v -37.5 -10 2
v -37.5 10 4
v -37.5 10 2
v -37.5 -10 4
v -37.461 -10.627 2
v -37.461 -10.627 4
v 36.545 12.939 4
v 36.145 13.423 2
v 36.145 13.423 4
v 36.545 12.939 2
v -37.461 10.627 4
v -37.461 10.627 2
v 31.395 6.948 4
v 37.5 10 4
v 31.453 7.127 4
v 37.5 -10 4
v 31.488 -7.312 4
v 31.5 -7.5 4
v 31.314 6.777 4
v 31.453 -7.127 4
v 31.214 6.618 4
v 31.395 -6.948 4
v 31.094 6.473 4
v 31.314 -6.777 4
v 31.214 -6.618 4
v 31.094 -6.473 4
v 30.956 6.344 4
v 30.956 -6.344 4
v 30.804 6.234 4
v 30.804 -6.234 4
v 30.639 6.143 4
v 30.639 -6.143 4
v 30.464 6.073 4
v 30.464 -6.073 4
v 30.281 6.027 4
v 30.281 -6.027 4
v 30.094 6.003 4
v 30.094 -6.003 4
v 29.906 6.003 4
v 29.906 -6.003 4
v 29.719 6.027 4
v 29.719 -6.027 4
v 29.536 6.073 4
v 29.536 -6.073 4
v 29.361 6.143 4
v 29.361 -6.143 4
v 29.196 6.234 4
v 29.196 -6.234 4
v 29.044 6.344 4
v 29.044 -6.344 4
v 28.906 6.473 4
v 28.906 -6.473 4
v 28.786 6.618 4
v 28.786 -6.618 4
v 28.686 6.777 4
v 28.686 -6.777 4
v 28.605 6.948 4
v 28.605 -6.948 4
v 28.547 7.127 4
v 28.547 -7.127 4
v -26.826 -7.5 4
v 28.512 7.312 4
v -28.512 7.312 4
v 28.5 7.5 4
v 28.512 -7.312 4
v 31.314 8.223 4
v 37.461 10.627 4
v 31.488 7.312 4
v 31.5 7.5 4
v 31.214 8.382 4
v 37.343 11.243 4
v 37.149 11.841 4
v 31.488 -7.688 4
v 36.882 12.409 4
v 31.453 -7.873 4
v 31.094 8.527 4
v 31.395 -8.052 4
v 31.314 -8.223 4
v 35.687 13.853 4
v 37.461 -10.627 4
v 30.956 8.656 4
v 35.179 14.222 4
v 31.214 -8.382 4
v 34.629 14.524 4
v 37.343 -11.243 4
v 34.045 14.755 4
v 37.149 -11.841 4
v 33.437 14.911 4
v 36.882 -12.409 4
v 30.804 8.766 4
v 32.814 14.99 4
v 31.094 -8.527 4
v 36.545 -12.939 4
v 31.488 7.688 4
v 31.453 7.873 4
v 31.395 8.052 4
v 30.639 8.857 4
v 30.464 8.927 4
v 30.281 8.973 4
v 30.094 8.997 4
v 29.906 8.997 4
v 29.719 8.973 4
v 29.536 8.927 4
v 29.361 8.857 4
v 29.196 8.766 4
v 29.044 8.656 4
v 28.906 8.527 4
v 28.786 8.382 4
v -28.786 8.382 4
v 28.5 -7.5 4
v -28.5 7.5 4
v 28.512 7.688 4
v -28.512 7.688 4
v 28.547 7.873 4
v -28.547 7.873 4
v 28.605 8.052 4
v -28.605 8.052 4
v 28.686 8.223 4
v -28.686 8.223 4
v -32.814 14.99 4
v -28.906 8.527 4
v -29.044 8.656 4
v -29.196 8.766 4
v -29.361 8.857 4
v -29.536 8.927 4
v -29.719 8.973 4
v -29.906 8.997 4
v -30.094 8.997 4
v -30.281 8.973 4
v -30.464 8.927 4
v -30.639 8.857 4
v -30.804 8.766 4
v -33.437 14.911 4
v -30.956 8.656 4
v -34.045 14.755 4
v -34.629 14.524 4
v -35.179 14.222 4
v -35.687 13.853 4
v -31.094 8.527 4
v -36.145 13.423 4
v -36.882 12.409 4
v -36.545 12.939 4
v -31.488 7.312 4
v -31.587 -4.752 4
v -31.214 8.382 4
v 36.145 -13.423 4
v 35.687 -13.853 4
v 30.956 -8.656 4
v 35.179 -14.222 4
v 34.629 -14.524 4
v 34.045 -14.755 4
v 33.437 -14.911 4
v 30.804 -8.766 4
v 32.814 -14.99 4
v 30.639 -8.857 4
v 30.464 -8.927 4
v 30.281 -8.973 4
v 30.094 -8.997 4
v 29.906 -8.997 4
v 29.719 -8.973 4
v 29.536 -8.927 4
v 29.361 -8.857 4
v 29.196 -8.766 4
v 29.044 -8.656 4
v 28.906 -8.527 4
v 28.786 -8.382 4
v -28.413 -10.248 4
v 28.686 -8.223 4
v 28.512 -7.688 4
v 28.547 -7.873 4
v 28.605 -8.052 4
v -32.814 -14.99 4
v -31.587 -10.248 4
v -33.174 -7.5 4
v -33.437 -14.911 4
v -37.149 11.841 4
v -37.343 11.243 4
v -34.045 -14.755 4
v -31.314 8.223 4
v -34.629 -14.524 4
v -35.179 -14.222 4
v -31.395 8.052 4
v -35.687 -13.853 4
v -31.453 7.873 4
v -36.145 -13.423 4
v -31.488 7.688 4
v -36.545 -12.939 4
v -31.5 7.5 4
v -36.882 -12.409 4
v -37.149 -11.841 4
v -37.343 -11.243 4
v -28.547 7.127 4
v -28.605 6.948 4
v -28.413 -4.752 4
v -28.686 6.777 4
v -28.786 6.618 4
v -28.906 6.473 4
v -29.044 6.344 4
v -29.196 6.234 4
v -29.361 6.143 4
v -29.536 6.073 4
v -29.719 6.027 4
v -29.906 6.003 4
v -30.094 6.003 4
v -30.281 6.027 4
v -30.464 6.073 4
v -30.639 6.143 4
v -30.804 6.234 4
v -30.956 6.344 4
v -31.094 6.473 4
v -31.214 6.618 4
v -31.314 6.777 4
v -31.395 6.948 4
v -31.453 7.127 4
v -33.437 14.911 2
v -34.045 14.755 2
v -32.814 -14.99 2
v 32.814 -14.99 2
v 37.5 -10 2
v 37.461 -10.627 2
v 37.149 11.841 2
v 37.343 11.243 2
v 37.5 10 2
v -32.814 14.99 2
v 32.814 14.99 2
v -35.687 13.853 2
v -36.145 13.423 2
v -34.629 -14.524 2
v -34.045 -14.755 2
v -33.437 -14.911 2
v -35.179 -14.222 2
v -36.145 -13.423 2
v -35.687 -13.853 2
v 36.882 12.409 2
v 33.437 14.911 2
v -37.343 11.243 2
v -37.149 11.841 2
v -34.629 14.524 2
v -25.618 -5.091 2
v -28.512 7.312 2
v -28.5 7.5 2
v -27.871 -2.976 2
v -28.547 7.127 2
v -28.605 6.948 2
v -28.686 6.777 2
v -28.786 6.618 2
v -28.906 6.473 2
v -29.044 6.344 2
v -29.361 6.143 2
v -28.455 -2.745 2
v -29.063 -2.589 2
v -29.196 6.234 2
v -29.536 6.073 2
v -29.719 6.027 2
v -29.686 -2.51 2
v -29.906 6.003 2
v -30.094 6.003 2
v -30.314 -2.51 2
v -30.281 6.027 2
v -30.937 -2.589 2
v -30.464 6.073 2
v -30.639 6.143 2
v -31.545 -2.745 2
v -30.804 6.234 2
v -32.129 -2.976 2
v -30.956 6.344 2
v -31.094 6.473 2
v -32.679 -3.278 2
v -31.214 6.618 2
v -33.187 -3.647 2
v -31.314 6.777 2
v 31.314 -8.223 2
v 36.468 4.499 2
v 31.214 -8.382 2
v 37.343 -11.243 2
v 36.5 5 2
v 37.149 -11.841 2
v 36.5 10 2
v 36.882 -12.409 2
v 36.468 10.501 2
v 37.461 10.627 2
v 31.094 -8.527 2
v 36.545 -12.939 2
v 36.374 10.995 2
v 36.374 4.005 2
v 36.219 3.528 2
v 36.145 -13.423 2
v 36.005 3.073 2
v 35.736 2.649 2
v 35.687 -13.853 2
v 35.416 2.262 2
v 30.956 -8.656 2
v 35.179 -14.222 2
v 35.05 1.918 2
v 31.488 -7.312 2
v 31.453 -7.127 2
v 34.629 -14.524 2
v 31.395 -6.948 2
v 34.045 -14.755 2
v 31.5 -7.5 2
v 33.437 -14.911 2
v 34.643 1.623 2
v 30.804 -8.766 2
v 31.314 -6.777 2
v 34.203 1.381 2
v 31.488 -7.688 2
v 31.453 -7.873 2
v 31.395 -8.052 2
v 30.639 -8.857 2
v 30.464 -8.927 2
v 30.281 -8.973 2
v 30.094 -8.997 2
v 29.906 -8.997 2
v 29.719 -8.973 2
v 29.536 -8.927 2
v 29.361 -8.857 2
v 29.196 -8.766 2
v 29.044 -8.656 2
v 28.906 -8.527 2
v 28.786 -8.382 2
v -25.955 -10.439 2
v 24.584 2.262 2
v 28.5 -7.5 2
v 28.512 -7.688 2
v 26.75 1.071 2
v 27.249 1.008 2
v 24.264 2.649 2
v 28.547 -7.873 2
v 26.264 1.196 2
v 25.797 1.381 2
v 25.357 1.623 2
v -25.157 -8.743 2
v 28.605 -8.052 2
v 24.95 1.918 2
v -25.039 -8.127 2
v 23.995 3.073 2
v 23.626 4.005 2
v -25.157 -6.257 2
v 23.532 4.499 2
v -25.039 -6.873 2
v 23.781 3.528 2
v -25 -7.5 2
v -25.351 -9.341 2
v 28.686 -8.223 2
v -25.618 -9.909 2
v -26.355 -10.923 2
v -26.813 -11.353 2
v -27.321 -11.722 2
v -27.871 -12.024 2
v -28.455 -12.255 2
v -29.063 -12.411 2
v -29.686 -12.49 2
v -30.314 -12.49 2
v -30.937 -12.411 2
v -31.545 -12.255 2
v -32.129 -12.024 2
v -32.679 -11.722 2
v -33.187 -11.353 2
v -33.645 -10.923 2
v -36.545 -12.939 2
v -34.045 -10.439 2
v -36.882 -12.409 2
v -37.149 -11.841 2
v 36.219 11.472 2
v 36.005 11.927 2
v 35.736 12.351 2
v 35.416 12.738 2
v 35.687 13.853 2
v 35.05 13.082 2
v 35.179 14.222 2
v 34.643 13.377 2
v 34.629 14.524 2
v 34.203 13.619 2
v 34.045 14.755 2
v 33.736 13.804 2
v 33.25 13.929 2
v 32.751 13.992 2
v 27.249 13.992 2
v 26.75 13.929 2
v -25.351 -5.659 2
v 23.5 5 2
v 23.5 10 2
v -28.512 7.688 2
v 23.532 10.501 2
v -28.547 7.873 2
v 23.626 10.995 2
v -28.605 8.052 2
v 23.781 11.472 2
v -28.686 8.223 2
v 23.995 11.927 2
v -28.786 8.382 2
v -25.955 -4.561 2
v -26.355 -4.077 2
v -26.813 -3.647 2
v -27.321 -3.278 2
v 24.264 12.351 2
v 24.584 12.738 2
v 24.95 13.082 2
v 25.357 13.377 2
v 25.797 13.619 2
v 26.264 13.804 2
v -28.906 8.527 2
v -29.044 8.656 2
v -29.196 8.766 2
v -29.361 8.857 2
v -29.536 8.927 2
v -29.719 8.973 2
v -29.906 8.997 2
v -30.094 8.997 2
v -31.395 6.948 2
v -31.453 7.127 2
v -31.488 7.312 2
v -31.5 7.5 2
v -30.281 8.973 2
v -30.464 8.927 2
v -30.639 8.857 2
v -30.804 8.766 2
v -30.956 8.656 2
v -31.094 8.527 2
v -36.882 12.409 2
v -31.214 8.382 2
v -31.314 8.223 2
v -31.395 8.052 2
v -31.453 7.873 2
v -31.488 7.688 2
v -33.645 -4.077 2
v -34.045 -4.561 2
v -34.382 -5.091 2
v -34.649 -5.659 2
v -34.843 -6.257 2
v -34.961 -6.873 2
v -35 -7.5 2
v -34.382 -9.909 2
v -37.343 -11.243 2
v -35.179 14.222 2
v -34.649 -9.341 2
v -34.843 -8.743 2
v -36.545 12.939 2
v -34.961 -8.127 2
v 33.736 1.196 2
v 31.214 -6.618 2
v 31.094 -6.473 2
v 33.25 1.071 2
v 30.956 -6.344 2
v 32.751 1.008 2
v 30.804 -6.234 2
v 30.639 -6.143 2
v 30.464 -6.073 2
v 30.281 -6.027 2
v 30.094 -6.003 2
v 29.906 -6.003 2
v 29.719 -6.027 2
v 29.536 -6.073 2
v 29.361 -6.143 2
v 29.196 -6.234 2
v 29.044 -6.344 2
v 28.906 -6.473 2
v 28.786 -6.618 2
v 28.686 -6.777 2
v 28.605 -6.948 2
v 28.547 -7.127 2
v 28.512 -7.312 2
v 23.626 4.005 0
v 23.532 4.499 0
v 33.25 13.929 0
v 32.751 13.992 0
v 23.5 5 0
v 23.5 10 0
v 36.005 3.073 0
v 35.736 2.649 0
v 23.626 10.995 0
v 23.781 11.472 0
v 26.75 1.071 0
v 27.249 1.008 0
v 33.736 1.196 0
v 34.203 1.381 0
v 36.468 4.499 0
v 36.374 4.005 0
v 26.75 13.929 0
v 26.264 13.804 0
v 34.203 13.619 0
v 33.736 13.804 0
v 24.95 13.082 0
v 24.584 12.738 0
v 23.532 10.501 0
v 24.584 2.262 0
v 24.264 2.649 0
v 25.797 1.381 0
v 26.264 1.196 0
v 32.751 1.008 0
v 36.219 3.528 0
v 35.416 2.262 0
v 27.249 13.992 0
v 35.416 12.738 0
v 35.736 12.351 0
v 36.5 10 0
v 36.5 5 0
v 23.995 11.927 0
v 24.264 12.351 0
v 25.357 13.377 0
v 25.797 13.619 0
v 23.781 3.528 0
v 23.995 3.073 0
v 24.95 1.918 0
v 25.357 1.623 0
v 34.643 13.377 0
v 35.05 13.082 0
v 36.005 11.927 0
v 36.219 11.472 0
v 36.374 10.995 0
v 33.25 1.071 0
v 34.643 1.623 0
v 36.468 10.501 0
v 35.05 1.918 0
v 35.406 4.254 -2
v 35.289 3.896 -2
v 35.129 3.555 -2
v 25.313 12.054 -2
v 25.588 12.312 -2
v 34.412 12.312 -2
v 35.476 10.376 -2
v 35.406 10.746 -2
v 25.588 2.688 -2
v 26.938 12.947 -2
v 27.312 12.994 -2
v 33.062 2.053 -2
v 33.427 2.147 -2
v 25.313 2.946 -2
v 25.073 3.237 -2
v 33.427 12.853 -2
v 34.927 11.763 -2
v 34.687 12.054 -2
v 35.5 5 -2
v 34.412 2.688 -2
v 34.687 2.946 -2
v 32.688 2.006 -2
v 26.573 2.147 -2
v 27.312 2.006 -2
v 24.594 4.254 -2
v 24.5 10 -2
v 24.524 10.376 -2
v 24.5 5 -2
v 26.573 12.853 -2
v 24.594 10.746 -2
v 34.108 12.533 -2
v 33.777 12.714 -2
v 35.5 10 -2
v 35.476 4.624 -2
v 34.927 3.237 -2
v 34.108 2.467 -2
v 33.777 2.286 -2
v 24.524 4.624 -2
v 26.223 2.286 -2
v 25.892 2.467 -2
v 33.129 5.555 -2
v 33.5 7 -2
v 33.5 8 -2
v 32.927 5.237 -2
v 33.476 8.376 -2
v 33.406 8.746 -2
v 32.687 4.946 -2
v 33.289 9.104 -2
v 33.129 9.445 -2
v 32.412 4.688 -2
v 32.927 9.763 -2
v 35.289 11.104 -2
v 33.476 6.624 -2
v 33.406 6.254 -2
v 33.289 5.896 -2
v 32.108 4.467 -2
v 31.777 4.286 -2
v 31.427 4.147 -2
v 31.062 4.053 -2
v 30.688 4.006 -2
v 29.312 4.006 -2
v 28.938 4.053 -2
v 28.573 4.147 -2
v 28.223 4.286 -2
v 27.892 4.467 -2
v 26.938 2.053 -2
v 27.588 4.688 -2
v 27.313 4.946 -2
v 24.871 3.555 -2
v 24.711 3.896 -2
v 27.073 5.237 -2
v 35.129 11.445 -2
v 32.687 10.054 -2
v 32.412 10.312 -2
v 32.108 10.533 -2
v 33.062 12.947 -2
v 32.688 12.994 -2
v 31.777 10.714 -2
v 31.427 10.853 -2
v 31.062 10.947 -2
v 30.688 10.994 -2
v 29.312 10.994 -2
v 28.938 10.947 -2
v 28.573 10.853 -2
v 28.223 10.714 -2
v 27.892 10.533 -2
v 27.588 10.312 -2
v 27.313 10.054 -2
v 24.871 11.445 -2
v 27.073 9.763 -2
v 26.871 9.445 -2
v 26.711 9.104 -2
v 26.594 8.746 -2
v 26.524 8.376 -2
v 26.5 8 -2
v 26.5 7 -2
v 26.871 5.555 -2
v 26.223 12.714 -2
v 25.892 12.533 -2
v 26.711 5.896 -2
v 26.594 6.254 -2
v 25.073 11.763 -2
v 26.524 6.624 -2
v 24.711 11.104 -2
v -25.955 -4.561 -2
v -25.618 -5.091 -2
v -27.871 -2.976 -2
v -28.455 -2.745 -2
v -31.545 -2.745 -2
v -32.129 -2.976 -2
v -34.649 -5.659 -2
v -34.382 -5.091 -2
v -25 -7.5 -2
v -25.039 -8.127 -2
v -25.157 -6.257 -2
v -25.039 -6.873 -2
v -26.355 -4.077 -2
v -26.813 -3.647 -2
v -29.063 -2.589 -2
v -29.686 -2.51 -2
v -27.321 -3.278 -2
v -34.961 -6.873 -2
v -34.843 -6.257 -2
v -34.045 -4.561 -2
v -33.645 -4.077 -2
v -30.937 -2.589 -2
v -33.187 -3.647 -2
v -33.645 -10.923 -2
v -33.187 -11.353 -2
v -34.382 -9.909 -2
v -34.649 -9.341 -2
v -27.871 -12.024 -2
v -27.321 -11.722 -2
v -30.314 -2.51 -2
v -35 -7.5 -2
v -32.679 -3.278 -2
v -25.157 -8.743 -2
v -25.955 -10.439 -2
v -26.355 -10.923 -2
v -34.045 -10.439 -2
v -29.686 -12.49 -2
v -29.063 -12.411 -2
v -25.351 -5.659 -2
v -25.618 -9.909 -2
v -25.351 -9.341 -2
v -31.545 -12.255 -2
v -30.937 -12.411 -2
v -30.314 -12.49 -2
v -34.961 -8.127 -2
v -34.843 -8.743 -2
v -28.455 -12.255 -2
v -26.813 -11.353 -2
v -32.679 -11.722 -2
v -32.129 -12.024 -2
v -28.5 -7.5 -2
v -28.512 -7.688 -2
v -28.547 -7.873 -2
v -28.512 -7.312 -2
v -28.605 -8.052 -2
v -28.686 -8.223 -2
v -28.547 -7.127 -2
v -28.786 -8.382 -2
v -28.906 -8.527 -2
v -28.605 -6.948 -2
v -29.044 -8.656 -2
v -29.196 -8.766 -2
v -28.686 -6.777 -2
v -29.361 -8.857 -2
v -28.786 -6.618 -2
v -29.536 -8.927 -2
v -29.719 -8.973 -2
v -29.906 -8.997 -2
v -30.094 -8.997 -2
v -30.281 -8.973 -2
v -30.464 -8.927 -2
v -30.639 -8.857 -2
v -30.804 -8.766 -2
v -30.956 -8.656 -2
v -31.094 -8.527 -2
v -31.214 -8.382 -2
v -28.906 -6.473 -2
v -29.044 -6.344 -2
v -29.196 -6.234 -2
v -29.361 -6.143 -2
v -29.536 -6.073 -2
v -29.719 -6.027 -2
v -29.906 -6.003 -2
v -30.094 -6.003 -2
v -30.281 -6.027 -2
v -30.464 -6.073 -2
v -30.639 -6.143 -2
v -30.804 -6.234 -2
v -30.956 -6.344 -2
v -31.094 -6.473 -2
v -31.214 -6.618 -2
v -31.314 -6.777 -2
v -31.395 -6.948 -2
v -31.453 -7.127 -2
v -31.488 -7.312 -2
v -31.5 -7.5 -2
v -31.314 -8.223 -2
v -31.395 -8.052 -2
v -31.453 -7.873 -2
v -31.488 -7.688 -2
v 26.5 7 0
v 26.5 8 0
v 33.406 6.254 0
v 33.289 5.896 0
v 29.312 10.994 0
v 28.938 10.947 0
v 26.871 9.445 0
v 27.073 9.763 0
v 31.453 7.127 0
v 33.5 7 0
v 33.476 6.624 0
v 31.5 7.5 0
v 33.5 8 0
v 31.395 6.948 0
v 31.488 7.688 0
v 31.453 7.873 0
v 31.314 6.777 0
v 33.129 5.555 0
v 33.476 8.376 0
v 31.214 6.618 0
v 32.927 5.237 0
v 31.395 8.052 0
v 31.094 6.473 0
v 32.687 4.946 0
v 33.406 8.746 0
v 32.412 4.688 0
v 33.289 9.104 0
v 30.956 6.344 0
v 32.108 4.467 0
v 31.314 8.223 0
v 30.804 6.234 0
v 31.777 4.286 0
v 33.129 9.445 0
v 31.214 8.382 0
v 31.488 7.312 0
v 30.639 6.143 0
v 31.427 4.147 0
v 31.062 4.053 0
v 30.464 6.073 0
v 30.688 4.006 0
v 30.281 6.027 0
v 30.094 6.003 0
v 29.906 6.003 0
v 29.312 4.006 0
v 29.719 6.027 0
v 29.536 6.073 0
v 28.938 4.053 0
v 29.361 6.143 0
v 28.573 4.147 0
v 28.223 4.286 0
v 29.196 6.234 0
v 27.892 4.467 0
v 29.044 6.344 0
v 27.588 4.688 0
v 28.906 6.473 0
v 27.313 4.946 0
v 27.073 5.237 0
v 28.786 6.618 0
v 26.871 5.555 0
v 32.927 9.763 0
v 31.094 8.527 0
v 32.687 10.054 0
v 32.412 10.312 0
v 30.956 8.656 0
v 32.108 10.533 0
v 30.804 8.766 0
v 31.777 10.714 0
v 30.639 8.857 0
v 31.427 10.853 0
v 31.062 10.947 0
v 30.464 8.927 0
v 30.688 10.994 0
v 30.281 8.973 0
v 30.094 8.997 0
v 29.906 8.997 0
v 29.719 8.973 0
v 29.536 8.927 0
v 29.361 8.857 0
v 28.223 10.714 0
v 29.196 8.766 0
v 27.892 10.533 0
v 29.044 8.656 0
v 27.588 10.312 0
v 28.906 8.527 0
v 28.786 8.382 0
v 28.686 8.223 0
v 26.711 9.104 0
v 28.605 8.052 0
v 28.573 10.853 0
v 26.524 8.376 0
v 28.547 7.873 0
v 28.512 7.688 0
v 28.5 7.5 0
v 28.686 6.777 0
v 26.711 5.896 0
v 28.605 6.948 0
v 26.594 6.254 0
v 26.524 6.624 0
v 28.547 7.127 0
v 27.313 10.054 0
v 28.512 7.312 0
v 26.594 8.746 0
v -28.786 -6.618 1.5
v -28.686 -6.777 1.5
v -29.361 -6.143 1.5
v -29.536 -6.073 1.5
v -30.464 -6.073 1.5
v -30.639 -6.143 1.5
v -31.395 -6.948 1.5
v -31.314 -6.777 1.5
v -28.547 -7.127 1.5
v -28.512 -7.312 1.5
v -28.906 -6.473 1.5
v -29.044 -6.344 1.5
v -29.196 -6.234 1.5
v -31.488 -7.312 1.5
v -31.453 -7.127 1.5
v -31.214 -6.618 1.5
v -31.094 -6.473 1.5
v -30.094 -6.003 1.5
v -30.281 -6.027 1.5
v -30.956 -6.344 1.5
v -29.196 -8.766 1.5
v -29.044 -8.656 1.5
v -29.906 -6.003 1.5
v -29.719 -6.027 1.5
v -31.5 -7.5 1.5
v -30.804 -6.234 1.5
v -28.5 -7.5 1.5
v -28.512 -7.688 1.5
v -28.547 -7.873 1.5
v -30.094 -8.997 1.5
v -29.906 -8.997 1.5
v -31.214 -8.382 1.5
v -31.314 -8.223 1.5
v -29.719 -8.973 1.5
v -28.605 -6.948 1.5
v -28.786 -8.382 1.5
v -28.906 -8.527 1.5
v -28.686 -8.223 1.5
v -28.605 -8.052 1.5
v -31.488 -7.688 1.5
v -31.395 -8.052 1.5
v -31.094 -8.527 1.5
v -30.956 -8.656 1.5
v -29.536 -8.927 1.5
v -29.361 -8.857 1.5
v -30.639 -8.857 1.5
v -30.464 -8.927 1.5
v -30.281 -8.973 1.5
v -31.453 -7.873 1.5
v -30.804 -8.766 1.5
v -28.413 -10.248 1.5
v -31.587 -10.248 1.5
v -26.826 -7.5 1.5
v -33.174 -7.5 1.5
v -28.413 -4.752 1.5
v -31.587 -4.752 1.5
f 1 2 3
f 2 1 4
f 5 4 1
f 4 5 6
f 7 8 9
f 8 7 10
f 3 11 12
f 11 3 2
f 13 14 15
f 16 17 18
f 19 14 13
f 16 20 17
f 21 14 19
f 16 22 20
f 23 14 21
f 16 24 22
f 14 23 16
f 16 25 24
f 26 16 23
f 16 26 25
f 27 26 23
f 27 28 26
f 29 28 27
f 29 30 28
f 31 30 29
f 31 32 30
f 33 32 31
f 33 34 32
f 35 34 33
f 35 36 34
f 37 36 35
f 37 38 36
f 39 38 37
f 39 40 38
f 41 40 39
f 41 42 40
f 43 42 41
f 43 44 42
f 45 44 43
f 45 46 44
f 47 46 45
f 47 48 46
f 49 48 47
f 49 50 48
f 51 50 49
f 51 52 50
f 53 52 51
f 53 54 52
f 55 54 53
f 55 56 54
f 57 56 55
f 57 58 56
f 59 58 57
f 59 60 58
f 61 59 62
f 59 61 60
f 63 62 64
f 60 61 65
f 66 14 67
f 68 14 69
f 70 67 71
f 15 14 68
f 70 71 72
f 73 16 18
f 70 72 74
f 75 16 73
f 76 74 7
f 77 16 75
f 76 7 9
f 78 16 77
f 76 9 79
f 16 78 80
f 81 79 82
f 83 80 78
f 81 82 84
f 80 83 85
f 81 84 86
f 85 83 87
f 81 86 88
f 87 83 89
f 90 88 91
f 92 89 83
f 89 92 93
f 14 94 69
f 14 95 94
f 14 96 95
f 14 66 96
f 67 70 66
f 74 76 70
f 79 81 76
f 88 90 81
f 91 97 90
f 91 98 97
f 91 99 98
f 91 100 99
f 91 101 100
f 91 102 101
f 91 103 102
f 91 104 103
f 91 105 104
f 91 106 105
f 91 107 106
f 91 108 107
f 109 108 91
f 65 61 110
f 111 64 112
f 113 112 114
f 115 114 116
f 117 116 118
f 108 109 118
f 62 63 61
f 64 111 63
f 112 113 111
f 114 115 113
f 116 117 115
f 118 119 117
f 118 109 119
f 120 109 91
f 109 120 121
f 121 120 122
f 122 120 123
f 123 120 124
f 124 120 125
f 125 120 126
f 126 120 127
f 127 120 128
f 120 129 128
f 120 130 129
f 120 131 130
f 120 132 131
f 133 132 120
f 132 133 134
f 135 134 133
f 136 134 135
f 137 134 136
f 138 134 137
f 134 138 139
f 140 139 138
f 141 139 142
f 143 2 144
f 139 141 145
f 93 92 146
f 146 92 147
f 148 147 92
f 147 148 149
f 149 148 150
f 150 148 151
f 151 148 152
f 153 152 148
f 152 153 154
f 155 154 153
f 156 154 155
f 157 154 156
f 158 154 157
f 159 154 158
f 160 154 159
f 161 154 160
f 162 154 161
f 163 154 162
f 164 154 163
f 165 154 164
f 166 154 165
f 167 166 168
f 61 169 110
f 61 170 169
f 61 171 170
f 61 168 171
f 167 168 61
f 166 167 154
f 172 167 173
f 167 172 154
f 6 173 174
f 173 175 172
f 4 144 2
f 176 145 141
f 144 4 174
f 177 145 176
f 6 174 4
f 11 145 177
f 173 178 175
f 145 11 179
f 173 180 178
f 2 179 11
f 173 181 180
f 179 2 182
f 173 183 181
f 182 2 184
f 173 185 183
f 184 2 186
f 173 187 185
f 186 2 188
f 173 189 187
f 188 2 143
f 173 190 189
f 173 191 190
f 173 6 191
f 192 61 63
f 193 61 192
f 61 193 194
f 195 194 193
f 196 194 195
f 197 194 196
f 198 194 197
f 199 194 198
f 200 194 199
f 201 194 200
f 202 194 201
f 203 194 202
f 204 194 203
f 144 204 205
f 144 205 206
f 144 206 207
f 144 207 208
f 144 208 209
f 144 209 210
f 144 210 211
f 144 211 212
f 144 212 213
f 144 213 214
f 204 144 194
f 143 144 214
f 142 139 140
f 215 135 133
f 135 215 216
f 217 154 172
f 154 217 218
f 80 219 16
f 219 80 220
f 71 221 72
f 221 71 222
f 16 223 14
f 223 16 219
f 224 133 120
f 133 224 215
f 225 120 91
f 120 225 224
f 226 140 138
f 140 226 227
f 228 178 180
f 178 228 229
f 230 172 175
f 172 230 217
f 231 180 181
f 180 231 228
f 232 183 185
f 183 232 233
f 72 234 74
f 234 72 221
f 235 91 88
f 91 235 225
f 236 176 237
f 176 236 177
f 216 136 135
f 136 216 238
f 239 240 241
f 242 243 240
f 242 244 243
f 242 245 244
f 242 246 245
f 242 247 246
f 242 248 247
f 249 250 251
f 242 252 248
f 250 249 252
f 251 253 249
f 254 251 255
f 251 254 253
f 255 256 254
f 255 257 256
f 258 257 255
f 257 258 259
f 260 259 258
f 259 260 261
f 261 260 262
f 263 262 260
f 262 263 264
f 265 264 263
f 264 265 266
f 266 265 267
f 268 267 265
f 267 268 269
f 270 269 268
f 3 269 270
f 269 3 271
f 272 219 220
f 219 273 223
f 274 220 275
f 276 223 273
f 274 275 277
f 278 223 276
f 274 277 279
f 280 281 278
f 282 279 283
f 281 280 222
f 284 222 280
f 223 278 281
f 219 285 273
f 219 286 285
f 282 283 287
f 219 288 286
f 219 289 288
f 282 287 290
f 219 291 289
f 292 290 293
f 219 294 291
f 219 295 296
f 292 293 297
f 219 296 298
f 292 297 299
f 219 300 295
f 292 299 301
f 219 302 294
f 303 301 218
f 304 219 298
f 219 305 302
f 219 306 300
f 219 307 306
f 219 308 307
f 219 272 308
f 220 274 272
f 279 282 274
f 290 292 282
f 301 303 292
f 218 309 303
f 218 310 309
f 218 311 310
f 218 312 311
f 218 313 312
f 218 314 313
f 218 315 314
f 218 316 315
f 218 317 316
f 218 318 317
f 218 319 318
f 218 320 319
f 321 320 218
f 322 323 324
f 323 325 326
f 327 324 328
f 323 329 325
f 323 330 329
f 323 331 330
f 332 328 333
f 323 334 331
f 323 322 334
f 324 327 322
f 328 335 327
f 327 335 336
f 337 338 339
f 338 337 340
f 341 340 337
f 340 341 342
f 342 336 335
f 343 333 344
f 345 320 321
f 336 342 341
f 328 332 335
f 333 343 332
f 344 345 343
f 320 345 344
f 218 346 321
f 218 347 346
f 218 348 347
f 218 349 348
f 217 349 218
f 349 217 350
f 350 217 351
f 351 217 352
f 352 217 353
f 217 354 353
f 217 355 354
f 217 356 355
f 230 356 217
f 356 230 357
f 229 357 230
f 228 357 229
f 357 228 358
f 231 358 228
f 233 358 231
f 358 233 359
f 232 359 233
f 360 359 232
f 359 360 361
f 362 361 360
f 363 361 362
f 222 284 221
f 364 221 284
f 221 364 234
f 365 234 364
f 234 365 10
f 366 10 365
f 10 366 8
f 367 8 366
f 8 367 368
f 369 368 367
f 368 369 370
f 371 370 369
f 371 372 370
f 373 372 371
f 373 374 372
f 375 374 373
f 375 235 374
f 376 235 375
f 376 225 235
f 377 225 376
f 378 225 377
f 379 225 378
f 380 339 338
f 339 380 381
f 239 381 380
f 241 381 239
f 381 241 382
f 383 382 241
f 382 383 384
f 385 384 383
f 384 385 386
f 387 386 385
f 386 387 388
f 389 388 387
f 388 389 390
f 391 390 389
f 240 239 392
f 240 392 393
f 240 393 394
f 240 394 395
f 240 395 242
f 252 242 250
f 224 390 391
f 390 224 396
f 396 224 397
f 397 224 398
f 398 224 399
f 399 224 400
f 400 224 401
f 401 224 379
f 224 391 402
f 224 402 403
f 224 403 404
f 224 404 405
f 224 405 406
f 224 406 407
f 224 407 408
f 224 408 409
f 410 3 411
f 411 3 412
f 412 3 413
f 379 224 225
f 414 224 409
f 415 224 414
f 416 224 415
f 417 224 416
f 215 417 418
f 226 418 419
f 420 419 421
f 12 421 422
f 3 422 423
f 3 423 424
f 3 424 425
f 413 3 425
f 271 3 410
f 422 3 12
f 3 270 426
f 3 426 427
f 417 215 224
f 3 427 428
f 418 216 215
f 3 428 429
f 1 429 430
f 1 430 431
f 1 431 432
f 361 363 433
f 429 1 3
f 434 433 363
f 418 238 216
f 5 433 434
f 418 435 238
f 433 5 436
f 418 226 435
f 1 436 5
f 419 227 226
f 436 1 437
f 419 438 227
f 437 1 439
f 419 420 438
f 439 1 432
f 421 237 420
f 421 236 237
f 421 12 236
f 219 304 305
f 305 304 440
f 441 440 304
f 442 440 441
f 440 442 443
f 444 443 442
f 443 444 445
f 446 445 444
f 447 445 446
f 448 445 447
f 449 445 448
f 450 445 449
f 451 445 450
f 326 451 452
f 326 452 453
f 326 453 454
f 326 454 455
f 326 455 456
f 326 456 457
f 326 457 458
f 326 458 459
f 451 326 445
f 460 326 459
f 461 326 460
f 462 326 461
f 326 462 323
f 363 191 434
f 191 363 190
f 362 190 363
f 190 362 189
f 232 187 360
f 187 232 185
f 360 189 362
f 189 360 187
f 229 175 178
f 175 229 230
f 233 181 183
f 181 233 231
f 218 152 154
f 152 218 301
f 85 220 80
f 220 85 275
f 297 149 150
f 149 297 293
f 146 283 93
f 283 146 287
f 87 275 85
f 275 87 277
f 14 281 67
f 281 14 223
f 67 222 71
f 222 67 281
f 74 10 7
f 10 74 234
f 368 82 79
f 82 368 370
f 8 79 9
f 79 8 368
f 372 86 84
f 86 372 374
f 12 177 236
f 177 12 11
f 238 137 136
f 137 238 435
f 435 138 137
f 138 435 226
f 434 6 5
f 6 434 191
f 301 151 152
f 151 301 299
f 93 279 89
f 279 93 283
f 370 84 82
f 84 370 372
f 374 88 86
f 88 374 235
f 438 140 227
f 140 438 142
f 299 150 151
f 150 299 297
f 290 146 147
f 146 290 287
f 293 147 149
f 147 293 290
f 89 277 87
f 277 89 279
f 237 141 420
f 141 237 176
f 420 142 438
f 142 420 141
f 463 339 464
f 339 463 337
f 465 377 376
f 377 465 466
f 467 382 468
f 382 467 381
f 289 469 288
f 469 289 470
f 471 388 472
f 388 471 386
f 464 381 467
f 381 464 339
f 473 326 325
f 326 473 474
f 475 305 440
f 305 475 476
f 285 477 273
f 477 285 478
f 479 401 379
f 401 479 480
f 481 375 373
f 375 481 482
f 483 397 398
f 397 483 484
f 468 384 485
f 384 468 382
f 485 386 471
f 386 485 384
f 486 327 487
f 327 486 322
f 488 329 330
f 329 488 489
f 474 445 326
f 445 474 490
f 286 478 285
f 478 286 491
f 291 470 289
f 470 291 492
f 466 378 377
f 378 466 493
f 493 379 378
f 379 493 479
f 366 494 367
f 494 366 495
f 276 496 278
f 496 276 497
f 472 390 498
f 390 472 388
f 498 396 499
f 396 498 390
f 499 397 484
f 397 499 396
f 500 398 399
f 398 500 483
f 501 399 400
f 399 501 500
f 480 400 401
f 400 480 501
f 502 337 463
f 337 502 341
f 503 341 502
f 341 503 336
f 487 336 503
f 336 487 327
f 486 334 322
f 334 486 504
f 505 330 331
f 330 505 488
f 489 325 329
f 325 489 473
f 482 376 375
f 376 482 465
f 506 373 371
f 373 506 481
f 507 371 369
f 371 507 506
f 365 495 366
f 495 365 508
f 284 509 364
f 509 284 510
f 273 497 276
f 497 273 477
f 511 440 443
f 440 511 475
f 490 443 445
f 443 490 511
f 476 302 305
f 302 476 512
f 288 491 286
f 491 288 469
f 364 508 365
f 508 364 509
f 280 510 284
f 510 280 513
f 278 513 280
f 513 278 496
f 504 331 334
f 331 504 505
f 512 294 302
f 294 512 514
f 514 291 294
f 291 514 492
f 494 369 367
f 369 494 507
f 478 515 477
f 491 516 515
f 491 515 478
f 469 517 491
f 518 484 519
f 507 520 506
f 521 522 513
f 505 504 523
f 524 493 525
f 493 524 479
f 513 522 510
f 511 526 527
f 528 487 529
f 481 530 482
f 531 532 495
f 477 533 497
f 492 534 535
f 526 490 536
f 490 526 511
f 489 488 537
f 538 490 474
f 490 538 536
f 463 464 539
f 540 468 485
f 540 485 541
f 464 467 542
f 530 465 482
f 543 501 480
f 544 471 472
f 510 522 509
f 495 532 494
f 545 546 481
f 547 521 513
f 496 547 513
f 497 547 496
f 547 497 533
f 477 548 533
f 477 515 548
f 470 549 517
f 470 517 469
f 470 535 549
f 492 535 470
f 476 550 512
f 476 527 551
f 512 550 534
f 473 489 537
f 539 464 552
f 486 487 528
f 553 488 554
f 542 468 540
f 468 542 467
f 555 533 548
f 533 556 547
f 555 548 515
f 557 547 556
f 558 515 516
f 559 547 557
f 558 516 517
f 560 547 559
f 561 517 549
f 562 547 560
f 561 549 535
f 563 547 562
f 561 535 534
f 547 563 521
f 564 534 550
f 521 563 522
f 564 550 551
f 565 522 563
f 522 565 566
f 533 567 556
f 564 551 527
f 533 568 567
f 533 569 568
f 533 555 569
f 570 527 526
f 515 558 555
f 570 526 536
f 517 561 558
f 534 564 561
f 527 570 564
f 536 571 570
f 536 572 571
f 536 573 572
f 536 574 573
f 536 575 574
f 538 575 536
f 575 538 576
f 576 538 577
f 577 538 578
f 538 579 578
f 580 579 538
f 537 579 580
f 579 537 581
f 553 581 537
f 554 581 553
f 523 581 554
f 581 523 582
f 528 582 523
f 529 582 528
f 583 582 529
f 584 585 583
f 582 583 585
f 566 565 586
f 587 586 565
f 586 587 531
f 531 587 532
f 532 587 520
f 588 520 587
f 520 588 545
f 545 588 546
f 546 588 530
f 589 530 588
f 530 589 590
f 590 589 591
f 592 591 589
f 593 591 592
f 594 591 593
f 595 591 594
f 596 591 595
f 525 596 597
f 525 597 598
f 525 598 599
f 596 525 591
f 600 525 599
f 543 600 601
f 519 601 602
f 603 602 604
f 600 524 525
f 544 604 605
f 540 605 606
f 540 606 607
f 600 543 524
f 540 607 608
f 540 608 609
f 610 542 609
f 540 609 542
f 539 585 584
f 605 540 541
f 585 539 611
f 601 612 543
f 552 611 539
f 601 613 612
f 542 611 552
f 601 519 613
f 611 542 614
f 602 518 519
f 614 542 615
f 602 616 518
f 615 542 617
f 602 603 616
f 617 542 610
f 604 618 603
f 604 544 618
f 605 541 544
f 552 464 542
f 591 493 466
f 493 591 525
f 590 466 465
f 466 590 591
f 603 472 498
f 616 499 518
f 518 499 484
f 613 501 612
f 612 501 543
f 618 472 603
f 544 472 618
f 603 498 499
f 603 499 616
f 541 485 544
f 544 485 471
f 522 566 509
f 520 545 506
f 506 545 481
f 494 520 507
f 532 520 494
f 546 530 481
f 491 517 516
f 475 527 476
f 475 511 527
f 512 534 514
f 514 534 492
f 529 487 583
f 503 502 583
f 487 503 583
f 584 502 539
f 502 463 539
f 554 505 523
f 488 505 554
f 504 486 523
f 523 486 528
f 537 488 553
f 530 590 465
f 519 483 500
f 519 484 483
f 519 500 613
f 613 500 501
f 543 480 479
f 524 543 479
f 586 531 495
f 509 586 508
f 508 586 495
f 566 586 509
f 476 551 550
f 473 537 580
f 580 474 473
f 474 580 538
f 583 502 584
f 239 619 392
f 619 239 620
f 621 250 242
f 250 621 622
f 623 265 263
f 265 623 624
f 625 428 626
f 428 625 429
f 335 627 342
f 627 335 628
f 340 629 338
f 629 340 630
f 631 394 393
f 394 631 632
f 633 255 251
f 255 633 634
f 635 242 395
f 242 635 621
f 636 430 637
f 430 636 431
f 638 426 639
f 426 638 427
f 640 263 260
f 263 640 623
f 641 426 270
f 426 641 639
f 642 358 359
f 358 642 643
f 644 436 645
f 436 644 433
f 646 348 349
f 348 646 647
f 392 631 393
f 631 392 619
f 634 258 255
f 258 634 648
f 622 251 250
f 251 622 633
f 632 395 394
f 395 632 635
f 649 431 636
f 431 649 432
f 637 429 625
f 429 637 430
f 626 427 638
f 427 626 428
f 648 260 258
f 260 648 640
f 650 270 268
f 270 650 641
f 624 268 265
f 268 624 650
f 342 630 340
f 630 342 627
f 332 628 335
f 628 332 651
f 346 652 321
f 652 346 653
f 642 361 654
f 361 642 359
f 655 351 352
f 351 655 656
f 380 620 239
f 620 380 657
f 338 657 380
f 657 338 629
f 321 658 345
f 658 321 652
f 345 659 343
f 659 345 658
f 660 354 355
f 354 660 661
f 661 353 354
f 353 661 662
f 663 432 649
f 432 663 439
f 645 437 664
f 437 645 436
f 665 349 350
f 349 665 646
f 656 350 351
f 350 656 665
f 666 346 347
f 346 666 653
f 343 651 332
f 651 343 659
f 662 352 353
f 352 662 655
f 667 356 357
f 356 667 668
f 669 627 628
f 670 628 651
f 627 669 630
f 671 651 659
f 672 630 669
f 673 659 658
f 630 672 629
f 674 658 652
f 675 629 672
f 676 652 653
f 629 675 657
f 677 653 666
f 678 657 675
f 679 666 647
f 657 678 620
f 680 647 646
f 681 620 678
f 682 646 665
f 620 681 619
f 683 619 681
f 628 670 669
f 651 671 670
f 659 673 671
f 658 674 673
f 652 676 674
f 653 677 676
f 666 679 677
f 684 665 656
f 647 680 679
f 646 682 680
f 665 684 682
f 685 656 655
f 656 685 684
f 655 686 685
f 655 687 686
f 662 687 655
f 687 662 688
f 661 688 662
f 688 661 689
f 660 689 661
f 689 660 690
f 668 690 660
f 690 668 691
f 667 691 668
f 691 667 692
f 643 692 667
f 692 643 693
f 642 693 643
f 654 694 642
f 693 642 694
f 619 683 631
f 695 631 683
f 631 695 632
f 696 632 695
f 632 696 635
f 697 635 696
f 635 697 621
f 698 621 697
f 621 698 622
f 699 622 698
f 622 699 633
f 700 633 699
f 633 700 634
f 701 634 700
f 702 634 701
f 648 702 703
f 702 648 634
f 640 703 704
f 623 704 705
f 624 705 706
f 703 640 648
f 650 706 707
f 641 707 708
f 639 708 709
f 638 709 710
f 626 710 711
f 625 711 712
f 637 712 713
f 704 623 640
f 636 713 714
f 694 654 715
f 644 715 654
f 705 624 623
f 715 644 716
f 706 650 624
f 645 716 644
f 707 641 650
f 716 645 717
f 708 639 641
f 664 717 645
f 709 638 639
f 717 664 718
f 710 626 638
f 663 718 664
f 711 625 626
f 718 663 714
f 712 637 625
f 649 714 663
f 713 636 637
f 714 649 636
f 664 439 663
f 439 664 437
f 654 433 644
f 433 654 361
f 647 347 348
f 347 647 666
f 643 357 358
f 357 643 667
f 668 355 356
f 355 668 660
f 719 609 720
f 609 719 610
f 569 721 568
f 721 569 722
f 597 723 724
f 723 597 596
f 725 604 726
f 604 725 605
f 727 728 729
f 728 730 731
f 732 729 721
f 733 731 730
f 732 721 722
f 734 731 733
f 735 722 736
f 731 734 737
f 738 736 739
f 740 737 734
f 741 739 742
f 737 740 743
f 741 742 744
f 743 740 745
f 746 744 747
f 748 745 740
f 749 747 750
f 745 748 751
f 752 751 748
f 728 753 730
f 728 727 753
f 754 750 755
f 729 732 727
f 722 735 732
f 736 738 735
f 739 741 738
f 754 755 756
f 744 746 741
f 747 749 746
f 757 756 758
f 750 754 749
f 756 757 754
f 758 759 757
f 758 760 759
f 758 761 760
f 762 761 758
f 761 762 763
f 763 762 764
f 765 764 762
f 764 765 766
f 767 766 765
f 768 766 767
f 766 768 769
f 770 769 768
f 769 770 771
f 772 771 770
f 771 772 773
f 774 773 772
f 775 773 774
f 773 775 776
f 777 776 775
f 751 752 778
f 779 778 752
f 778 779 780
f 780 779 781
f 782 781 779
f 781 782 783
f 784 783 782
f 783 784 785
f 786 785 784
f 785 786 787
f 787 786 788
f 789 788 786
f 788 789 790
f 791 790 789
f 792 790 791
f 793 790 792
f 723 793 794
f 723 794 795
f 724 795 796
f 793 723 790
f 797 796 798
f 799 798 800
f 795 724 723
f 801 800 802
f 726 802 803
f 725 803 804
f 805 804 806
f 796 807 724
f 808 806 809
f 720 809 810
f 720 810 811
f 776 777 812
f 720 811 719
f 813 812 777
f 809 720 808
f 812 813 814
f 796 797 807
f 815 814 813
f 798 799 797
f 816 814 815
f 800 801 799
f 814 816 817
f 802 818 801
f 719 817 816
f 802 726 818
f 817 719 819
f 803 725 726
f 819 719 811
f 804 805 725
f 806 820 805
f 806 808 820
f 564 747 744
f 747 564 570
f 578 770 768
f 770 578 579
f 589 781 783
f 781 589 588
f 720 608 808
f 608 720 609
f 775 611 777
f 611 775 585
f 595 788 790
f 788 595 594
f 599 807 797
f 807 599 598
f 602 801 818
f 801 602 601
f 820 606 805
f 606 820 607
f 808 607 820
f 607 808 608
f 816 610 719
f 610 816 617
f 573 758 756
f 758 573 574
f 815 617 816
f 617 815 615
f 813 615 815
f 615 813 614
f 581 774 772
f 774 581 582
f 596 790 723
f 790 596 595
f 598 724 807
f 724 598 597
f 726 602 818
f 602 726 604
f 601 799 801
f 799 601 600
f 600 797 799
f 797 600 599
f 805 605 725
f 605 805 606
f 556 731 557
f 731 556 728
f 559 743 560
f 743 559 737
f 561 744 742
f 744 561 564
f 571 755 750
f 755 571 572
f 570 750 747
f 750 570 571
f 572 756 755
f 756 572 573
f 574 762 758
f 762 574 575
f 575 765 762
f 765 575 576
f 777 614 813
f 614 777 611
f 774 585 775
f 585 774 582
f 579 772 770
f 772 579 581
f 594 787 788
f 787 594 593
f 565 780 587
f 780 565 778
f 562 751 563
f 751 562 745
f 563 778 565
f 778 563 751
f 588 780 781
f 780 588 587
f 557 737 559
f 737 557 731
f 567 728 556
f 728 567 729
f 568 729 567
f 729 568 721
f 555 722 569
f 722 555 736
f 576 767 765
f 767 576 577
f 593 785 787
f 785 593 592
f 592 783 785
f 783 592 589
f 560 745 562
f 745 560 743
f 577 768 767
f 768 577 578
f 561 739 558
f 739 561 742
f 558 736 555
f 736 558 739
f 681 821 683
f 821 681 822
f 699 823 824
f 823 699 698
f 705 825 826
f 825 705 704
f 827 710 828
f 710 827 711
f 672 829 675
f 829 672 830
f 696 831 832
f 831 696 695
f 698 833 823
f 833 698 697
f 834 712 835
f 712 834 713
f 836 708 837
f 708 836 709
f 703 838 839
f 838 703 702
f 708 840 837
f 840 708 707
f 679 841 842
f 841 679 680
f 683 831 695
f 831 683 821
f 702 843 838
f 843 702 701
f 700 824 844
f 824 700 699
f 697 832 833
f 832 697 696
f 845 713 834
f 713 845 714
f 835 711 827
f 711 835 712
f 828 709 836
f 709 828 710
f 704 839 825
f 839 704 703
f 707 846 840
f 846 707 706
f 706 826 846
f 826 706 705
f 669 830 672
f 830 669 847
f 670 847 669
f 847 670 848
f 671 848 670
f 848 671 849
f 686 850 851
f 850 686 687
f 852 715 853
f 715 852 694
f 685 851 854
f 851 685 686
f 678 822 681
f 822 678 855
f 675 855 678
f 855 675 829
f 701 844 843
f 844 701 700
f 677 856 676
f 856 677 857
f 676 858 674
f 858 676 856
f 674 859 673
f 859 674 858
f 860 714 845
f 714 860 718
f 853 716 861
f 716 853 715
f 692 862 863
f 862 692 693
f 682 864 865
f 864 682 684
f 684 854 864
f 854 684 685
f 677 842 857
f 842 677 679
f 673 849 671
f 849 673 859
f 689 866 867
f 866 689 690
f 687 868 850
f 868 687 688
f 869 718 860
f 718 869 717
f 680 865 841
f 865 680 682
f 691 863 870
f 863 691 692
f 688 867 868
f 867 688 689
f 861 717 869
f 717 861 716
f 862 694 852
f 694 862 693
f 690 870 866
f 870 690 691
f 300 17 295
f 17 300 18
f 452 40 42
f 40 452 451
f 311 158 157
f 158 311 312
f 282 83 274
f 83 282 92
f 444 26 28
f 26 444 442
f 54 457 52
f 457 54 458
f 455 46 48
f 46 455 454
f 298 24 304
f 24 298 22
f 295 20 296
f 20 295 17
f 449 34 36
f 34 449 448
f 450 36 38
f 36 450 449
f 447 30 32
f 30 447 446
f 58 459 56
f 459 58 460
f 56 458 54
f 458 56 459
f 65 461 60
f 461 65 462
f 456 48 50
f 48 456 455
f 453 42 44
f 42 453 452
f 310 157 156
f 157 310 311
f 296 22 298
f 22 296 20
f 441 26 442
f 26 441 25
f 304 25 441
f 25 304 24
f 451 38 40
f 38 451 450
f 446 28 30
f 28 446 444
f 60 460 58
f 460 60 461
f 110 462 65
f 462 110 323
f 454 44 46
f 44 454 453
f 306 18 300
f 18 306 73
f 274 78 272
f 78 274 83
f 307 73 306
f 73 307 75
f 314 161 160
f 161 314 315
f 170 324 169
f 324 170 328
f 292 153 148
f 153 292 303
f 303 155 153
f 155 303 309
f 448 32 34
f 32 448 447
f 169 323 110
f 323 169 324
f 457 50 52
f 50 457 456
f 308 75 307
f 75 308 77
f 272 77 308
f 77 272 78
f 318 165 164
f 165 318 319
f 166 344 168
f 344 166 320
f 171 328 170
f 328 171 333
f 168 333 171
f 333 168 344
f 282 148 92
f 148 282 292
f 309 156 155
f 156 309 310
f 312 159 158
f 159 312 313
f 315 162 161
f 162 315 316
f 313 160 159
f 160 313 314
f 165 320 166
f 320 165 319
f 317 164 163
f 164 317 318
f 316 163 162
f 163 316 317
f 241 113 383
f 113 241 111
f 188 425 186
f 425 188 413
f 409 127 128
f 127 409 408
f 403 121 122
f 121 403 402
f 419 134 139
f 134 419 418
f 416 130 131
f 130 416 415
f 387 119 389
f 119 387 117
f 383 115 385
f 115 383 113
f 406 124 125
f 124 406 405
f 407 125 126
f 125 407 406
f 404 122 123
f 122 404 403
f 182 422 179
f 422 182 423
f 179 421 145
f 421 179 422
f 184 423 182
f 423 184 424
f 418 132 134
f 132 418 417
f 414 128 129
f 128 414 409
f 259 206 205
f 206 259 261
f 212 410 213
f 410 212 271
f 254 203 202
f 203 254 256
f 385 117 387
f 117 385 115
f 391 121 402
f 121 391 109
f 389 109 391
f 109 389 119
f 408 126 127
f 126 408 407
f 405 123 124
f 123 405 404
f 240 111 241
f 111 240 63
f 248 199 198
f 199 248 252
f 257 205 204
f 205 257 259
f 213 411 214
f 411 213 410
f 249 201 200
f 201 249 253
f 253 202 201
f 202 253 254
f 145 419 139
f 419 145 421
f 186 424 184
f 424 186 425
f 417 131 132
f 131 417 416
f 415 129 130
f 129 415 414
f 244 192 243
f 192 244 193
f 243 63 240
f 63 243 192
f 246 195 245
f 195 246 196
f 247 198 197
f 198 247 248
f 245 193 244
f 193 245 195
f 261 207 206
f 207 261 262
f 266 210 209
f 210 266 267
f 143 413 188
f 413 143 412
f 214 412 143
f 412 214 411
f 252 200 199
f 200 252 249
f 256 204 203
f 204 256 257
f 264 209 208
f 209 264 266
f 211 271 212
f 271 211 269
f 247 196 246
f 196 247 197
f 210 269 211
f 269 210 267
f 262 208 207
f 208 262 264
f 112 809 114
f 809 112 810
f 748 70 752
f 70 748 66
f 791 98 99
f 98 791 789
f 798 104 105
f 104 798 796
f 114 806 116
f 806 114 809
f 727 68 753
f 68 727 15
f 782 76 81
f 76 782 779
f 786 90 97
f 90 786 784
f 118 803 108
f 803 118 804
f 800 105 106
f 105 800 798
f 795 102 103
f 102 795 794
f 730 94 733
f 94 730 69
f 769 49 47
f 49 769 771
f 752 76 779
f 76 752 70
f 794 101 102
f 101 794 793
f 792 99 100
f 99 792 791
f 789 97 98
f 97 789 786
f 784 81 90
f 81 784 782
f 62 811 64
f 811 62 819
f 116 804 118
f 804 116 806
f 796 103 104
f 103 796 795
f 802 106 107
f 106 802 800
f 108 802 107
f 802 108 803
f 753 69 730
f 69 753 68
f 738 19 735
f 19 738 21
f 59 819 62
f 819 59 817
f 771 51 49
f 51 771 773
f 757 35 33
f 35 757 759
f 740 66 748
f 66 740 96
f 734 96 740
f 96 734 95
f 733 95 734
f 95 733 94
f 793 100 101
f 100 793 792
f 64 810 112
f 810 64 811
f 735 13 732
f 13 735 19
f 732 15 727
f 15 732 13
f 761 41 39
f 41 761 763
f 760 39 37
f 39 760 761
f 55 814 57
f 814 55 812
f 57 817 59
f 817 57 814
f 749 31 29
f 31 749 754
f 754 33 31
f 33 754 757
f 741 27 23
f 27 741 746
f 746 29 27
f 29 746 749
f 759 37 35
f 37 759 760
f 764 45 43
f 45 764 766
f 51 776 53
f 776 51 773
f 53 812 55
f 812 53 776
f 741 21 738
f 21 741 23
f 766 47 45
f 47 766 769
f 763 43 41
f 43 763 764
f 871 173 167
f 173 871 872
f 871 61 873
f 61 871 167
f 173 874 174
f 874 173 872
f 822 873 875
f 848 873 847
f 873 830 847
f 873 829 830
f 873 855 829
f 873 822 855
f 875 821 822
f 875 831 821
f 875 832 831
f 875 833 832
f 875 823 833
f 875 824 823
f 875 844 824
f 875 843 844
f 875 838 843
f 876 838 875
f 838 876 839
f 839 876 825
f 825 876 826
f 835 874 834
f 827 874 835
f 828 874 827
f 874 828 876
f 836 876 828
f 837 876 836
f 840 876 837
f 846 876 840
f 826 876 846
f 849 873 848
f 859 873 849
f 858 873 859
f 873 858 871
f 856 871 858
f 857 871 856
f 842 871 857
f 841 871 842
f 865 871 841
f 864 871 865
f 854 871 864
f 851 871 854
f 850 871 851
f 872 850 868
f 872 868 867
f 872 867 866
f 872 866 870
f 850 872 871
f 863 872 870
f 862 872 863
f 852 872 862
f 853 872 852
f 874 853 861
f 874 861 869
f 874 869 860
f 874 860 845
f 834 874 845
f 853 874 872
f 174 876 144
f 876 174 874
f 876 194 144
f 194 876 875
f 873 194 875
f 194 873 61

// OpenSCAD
$fn = 50;


difference() {
	union() {
		translate(v = [0, 0, 2]) {
			rotate(a = [0, 0, 0]) {
				hull() {
					translate(v = [-32.5000000000, 10.0000000000, 0]) {
						rotate(a = [0, 0, 0]) {
							translate(v = [0, 0, 0]) {
								rotate(a = [0, 0, 0]) {
									cylinder(h = 2, r = 5);
								}
							}
						}
					}
					translate(v = [32.5000000000, 10.0000000000, 0]) {
						rotate(a = [0, 0, 0]) {
							translate(v = [0, 0, 0]) {
								rotate(a = [0, 0, 0]) {
									cylinder(h = 2, r = 5);
								}
							}
						}
					}
					translate(v = [-32.5000000000, -10.0000000000, 0]) {
						rotate(a = [0, 0, 0]) {
							translate(v = [0, 0, 0]) {
								rotate(a = [0, 0, 0]) {
									cylinder(h = 2, r = 5);
								}
							}
						}
					}
					translate(v = [32.5000000000, -10.0000000000, 0]) {
						rotate(a = [0, 0, 0]) {
							translate(v = [0, 0, 0]) {
								rotate(a = [0, 0, 0]) {
									cylinder(h = 2, r = 5);
								}
							}
						}
					}
				}
			}
		}
		translate(v = [30.0000000000, 7.5000000000, 0]) {
			rotate(a = [0, 0, 0]) {
				hull() {
					translate(v = [-2.5000000000, 2.5000000000, 0]) {
						rotate(a = [0, 0, 0]) {
							cylinder(h = 2, r1 = 4.0000000000, r2 = 4.0000000000);
						}
					}
					translate(v = [2.5000000000, 2.5000000000, 0]) {
						rotate(a = [0, 0, 0]) {
							cylinder(h = 2, r1 = 4.0000000000, r2 = 4.0000000000);
						}
					}
					translate(v = [-2.5000000000, -2.5000000000, 0]) {
						rotate(a = [0, 0, 0]) {
							cylinder(h = 2, r1 = 4.0000000000, r2 = 4.0000000000);
						}
					}
					translate(v = [2.5000000000, -2.5000000000, 0]) {
						rotate(a = [0, 0, 0]) {
							cylinder(h = 2, r1 = 4.0000000000, r2 = 4.0000000000);
						}
					}
				}
			}
		}
		translate(v = [30.0000000000, 7.5000000000, -2]) {
			rotate(a = [0, 180, 0]) {
				hull() {
					translate(v = [-2.5000000000, 2.5000000000, 0]) {
						rotate(a = [0, 180, 0]) {
							cylinder(h = 2, r1 = 3.0000000000, r2 = 4.0000000000);
						}
					}
					translate(v = [2.5000000000, 2.5000000000, 0]) {
						rotate(a = [0, 180, 0]) {
							cylinder(h = 2, r1 = 3.0000000000, r2 = 4.0000000000);
						}
					}
					translate(v = [-2.5000000000, -2.5000000000, 0]) {
						rotate(a = [0, 180, 0]) {
							cylinder(h = 2, r1 = 3.0000000000, r2 = 4.0000000000);
						}
					}
					translate(v = [2.5000000000, -2.5000000000, 0]) {
						rotate(a = [0, 180, 0]) {
							cylinder(h = 2, r1 = 3.0000000000, r2 = 4.0000000000);
						}
					}
				}
			}
		}
		translate(v = [-30.0000000000, -7.5000000000, -2.0000000000]) {
			rotate(a = [0, 0, 0]) {
				cylinder(h = 4, r = 5);
			}
		}
	}
	union() {
		translate(v = [30.0000000000, 7.5000000000, -2]) {
			rotate(a = [0, 0, 0]) {
				hull() {
					translate(v = [-0.5000000000, 0.5000000000, 0]) {
						rotate(a = [0, 0, 0]) {
							translate(v = [0, 0, 0]) {
								rotate(a = [0, 0, 0]) {
									cylinder(h = 2, r = 3.0000000000);
								}
							}
						}
					}
					translate(v = [0.5000000000, 0.5000000000, 0]) {
						rotate(a = [0, 0, 0]) {
							translate(v = [0, 0, 0]) {
								rotate(a = [0, 0, 0]) {
									cylinder(h = 2, r = 3.0000000000);
								}
							}
						}
					}
					translate(v = [-0.5000000000, -0.5000000000, 0]) {
						rotate(a = [0, 0, 0]) {
							translate(v = [0, 0, 0]) {
								rotate(a = [0, 0, 0]) {
									cylinder(h = 2, r = 3.0000000000);
								}
							}
						}
					}
					translate(v = [0.5000000000, -0.5000000000, 0]) {
						rotate(a = [0, 0, 0]) {
							translate(v = [0, 0, 0]) {
								rotate(a = [0, 0, 0]) {
									cylinder(h = 2, r = 3.0000000000);
								}
							}
						}
					}
				}
			}
		}
		translate(v = [-30.0000000000, -7.5000000000, -50]) {
			rotate(a = [0, 0, 0]) {
				cylinder(h = 100, r = 1.5000000000);
			}
		}
		translate(v = [30.0000000000, -7.5000000000, -50]) {
			rotate(a = [0, 0, 0]) {
				cylinder(h = 100, r = 1.5000000000);
			}
		}
		translate(v = [-30.0000000000, 7.5000000000, -50]) {
			rotate(a = [0, 0, 0]) {
				cylinder(h = 100, r = 1.5000000000);
			}
		}
		translate(v = [30.0000000000, 7.5000000000, -50]) {
			rotate(a = [0, 0, 0]) {
				cylinder(h = 100, r = 1.5000000000);
			}
		}
		translate(v = [-30.0000000000, -7.5000000000, 1.5000000000]) {
			rotate(a = [0, 0, 0]) {
				#translate(v = [0, 0, 0]) {
					rotate(a = [0, 0, 0]) {
						linear_extrude(height = 2.5000000000) {
							polygon(points = [[3.1735000000, 0.0000000000], [1.5867500000, 2.7483316189], [-1.5867500000, 2.7483316189], [-3.1735000000, 0.0000000000], [-1.5867500000, -2.7483316189], [1.5867500000, -2.7483316189]]);
						}
					}
				}
			}
		}
	}
}
